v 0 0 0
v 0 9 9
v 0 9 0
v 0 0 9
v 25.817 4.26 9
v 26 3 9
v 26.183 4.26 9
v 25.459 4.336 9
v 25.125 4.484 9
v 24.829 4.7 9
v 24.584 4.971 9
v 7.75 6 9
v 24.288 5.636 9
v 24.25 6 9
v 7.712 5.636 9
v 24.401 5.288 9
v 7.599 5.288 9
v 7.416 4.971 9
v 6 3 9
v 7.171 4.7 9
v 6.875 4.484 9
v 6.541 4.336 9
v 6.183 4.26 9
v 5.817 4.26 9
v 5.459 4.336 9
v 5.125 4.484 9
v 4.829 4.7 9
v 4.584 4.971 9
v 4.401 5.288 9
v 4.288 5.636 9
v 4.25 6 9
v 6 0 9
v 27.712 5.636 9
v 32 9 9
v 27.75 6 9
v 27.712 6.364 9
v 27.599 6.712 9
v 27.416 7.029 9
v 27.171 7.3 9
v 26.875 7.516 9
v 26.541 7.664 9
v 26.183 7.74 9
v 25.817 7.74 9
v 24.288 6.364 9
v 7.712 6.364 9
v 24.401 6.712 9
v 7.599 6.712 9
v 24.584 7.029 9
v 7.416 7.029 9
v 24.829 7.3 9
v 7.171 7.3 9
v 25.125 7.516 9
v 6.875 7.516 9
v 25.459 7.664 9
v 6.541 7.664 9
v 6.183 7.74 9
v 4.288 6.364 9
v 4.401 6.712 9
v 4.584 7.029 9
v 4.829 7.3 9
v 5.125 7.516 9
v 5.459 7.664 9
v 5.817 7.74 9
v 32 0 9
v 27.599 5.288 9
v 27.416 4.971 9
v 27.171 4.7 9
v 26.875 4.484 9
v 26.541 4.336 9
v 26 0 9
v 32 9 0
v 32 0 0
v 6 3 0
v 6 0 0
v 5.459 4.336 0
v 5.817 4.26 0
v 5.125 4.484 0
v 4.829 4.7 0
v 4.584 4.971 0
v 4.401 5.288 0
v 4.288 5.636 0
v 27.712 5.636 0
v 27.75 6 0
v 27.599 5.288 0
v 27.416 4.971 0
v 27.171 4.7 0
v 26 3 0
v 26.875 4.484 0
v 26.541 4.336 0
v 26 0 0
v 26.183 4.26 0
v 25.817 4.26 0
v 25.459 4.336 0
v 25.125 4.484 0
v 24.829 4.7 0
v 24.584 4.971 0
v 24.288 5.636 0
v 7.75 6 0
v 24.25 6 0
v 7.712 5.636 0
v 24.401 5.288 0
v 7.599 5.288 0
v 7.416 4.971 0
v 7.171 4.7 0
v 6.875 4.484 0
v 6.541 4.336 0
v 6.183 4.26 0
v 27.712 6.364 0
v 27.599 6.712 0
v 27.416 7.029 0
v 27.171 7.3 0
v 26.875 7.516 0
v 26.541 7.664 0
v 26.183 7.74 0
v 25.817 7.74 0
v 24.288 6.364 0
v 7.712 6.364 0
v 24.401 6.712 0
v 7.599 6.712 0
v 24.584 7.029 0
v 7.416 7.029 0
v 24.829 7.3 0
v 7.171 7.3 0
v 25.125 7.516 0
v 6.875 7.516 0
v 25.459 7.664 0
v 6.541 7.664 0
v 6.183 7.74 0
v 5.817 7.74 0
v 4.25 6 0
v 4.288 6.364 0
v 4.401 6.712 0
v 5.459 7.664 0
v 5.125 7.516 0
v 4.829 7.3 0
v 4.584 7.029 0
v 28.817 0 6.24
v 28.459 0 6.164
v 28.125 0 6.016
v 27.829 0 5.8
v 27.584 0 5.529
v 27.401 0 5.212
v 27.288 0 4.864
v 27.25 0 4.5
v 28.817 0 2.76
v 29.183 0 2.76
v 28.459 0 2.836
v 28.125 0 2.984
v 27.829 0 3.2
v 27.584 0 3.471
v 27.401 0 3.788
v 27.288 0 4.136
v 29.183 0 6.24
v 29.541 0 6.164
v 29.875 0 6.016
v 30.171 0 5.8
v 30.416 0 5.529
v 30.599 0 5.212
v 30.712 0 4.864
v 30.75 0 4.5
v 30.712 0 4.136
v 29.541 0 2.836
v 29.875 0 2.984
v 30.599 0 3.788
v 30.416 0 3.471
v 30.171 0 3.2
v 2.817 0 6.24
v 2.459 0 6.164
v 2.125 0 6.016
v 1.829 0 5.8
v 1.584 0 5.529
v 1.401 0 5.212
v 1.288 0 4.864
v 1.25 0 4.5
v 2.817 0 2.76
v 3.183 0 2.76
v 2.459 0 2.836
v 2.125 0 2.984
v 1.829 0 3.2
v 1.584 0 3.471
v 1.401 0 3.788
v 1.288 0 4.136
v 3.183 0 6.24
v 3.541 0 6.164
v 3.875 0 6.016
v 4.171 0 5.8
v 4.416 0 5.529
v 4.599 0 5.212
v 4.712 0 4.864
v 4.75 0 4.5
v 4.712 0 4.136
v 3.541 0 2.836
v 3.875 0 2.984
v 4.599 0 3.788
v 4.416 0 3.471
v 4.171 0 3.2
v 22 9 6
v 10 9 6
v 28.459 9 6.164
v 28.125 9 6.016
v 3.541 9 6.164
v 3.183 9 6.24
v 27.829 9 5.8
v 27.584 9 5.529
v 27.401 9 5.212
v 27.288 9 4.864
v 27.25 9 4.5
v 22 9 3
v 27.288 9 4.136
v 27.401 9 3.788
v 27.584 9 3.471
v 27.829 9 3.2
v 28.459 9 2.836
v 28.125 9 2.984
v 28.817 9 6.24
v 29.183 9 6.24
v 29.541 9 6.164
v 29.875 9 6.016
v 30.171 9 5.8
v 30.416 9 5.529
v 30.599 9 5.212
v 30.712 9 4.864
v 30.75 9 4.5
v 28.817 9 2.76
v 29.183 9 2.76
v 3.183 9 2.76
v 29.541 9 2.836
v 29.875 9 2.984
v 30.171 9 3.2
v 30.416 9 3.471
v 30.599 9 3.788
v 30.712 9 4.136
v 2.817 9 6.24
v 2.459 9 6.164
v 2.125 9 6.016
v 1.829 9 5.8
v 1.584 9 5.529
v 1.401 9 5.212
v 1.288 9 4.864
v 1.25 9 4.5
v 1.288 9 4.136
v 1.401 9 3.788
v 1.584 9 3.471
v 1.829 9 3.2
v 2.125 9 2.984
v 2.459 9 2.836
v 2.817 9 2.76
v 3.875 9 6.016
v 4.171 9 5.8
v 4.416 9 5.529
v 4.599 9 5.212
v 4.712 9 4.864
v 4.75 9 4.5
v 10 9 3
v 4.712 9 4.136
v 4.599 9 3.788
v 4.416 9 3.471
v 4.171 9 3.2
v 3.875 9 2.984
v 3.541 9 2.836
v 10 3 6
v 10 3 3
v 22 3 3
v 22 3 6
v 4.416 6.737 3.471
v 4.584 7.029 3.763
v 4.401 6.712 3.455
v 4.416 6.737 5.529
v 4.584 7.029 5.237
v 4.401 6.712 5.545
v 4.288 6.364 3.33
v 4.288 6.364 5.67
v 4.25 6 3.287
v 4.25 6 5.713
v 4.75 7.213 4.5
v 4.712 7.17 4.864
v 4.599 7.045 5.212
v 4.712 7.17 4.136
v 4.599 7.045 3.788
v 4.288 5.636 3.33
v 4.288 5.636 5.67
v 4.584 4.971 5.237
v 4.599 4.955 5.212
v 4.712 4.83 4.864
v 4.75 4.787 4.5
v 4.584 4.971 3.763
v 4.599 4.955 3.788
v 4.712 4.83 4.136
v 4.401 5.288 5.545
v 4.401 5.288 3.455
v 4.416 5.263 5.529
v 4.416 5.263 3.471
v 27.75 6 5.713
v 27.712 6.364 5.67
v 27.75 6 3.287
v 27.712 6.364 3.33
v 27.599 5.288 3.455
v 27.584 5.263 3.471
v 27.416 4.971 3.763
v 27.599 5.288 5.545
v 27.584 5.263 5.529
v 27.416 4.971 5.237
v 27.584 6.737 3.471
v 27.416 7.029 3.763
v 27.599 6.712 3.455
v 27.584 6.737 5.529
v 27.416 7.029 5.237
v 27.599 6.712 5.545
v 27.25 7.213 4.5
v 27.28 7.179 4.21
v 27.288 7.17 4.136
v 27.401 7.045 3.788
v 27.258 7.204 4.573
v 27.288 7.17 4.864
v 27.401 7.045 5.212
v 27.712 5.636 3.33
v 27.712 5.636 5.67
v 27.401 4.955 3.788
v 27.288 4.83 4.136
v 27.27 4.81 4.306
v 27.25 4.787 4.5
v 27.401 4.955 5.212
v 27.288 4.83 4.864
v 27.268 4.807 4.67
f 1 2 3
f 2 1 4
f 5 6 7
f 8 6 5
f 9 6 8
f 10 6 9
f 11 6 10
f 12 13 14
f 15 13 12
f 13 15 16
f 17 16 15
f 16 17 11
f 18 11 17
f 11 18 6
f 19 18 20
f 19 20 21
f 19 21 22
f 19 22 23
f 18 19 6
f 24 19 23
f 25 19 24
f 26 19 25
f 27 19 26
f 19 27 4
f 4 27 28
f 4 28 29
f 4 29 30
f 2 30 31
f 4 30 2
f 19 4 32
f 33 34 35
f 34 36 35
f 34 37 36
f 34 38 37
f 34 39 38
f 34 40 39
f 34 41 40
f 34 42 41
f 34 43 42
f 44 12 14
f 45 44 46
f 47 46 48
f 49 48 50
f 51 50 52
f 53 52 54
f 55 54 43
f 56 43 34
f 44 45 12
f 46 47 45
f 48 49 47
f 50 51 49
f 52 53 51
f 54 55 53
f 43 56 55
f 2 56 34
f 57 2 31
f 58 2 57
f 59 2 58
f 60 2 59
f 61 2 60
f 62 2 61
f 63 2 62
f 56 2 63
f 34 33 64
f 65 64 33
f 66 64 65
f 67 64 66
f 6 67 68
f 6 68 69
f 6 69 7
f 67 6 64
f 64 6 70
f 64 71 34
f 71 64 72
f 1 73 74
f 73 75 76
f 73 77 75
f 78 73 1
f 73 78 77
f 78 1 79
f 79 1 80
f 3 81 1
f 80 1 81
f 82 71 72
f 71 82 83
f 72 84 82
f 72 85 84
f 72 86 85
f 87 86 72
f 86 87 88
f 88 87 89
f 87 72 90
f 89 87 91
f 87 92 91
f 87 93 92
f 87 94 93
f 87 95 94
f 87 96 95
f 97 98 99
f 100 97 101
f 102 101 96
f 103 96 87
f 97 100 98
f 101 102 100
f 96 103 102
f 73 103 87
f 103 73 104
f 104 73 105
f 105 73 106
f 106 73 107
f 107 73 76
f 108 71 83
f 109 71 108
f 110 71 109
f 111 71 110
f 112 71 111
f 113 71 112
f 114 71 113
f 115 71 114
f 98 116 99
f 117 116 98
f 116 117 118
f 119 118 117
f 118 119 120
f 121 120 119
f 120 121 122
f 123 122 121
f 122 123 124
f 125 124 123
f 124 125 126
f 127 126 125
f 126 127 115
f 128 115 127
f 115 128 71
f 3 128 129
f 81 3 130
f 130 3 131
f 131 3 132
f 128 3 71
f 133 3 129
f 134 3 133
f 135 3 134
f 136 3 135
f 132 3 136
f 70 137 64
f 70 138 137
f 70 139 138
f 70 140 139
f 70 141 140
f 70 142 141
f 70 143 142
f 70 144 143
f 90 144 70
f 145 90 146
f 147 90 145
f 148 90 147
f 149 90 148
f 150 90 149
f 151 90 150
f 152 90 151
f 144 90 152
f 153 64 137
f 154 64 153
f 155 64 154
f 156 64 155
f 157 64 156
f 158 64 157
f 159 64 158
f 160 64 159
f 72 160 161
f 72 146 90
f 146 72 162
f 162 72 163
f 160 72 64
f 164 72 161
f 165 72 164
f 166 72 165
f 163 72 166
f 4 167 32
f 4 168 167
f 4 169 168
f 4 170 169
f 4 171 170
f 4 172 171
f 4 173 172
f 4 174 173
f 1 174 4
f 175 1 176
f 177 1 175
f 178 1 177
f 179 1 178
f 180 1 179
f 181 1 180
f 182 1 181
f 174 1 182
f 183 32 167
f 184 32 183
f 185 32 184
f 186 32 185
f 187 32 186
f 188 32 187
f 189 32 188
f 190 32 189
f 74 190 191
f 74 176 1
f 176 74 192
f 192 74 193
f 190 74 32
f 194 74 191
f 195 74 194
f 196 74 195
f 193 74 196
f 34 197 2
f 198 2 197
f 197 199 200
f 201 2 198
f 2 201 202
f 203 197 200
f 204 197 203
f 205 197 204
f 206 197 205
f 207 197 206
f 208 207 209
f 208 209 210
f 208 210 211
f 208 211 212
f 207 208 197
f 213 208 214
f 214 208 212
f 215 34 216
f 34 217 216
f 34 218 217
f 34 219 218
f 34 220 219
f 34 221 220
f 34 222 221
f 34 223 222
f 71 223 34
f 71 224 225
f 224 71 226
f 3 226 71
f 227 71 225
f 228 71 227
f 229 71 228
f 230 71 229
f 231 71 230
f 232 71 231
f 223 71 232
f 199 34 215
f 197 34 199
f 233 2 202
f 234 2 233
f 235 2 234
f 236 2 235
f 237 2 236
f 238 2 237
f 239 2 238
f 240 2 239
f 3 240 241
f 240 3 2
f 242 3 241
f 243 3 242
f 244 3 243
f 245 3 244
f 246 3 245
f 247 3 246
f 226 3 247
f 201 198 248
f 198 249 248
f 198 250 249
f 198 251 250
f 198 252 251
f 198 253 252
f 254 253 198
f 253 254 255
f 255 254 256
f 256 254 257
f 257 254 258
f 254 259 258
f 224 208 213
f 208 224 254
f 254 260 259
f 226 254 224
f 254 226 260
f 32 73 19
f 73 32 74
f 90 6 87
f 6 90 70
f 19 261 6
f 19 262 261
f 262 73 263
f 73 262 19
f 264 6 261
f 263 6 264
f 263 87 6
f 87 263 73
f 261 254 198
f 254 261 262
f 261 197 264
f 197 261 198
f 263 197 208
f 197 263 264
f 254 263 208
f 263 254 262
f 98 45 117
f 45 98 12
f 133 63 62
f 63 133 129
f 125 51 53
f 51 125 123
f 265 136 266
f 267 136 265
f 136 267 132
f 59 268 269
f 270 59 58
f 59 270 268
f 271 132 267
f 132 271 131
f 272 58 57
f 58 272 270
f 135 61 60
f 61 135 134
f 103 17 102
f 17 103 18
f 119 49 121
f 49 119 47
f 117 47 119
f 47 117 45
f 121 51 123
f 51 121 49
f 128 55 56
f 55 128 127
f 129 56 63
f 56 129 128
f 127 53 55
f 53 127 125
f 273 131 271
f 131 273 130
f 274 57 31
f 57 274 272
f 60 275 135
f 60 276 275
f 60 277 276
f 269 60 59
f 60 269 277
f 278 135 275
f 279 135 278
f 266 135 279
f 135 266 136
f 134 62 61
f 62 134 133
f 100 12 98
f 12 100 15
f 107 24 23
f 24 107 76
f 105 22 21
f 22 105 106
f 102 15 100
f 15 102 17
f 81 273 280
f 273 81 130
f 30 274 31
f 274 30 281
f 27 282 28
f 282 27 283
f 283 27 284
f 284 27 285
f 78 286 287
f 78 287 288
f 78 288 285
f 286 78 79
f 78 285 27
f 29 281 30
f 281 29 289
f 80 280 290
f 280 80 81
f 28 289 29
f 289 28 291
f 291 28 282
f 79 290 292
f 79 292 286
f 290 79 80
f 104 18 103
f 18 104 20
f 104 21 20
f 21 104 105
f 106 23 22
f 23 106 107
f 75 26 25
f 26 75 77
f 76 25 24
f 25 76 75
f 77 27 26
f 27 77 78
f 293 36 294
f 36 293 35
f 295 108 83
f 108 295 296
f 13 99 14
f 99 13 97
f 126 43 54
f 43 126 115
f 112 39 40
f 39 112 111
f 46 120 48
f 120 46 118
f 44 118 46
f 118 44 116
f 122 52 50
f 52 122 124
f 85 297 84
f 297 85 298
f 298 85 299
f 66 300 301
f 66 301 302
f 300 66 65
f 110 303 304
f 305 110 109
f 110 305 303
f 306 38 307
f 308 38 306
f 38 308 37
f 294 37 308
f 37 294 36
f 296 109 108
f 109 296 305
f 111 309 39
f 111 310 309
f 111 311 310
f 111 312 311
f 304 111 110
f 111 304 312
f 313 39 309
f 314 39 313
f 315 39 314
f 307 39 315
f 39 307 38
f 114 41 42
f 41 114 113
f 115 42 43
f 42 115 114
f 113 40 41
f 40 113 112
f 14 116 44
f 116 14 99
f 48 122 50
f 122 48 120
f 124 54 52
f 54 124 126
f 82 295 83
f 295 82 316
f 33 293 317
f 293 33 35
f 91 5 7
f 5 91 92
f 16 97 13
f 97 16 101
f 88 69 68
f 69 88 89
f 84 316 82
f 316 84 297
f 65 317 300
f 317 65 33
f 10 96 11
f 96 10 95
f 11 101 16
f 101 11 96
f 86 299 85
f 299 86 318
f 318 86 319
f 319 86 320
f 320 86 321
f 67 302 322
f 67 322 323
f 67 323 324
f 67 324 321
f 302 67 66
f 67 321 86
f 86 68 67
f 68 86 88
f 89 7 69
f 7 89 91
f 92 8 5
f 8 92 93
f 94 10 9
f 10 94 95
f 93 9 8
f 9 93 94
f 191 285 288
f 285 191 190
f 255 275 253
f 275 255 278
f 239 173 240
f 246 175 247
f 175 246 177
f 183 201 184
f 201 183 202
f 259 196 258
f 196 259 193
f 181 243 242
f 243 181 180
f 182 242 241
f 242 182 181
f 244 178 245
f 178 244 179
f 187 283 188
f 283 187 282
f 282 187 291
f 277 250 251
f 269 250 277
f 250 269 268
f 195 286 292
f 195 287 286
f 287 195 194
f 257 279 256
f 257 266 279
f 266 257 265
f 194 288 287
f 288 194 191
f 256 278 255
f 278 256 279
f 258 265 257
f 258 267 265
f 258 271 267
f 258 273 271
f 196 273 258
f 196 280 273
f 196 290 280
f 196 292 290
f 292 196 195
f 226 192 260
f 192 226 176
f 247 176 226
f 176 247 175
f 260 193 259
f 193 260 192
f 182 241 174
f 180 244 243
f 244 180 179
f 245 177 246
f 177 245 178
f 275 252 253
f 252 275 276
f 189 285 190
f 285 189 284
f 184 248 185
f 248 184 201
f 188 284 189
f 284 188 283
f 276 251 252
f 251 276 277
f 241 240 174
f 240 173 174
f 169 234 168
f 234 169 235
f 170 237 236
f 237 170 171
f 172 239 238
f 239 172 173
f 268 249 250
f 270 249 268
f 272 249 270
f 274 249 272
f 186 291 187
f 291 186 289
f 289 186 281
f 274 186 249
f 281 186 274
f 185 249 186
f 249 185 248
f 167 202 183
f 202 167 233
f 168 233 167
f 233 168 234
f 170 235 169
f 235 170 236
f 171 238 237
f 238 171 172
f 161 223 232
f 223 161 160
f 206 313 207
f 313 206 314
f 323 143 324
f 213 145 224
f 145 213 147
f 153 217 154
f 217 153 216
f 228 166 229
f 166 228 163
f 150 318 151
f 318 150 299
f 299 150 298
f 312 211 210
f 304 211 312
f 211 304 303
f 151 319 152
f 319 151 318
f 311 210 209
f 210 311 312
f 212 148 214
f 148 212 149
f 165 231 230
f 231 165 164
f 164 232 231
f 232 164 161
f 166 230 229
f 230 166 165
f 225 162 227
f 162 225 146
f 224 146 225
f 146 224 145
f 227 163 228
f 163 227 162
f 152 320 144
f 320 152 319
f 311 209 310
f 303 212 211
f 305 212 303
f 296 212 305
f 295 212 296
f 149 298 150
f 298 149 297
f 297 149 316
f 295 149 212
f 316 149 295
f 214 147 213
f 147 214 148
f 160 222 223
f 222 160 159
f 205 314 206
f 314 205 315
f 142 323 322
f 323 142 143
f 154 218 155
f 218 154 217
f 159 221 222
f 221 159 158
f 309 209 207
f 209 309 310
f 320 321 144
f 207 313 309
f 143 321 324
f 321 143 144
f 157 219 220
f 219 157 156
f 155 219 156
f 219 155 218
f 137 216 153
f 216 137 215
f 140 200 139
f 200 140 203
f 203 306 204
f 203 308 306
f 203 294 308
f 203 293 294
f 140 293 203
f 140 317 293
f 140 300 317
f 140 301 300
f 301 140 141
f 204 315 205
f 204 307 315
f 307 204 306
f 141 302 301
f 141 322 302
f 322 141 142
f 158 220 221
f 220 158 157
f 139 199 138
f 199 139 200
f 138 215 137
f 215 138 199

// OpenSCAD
difference () {
    cube([32,9,9], center=false);
	translate([6, 0, 0]) {
		cube([32-6*2, 3, 9]);
	}
    translate([10, 0, 3]) {
         cube([32-10*2, 9, 9-3*2]);
    }
    translate([6, 6, 0]) {
        cylinder(r=1.75, h=9, $fs=0.1);
    }
    translate([32-6, 6, 0]) {
        cylinder(r=1.75, h=9, $fs=0.1);
    }
    translate([3, 0, 4.5]) {
        rotate([-90, 0, 0,]) {
            cylinder(r=1.75, h=9, $fs=0.1);
        }
    }
    translate([32-3, 0, 4.5]) {
        rotate([-90, 0, 0,]) {
            cylinder(r=1.75, h=9, $fs=0.1);
        }
    }
}
